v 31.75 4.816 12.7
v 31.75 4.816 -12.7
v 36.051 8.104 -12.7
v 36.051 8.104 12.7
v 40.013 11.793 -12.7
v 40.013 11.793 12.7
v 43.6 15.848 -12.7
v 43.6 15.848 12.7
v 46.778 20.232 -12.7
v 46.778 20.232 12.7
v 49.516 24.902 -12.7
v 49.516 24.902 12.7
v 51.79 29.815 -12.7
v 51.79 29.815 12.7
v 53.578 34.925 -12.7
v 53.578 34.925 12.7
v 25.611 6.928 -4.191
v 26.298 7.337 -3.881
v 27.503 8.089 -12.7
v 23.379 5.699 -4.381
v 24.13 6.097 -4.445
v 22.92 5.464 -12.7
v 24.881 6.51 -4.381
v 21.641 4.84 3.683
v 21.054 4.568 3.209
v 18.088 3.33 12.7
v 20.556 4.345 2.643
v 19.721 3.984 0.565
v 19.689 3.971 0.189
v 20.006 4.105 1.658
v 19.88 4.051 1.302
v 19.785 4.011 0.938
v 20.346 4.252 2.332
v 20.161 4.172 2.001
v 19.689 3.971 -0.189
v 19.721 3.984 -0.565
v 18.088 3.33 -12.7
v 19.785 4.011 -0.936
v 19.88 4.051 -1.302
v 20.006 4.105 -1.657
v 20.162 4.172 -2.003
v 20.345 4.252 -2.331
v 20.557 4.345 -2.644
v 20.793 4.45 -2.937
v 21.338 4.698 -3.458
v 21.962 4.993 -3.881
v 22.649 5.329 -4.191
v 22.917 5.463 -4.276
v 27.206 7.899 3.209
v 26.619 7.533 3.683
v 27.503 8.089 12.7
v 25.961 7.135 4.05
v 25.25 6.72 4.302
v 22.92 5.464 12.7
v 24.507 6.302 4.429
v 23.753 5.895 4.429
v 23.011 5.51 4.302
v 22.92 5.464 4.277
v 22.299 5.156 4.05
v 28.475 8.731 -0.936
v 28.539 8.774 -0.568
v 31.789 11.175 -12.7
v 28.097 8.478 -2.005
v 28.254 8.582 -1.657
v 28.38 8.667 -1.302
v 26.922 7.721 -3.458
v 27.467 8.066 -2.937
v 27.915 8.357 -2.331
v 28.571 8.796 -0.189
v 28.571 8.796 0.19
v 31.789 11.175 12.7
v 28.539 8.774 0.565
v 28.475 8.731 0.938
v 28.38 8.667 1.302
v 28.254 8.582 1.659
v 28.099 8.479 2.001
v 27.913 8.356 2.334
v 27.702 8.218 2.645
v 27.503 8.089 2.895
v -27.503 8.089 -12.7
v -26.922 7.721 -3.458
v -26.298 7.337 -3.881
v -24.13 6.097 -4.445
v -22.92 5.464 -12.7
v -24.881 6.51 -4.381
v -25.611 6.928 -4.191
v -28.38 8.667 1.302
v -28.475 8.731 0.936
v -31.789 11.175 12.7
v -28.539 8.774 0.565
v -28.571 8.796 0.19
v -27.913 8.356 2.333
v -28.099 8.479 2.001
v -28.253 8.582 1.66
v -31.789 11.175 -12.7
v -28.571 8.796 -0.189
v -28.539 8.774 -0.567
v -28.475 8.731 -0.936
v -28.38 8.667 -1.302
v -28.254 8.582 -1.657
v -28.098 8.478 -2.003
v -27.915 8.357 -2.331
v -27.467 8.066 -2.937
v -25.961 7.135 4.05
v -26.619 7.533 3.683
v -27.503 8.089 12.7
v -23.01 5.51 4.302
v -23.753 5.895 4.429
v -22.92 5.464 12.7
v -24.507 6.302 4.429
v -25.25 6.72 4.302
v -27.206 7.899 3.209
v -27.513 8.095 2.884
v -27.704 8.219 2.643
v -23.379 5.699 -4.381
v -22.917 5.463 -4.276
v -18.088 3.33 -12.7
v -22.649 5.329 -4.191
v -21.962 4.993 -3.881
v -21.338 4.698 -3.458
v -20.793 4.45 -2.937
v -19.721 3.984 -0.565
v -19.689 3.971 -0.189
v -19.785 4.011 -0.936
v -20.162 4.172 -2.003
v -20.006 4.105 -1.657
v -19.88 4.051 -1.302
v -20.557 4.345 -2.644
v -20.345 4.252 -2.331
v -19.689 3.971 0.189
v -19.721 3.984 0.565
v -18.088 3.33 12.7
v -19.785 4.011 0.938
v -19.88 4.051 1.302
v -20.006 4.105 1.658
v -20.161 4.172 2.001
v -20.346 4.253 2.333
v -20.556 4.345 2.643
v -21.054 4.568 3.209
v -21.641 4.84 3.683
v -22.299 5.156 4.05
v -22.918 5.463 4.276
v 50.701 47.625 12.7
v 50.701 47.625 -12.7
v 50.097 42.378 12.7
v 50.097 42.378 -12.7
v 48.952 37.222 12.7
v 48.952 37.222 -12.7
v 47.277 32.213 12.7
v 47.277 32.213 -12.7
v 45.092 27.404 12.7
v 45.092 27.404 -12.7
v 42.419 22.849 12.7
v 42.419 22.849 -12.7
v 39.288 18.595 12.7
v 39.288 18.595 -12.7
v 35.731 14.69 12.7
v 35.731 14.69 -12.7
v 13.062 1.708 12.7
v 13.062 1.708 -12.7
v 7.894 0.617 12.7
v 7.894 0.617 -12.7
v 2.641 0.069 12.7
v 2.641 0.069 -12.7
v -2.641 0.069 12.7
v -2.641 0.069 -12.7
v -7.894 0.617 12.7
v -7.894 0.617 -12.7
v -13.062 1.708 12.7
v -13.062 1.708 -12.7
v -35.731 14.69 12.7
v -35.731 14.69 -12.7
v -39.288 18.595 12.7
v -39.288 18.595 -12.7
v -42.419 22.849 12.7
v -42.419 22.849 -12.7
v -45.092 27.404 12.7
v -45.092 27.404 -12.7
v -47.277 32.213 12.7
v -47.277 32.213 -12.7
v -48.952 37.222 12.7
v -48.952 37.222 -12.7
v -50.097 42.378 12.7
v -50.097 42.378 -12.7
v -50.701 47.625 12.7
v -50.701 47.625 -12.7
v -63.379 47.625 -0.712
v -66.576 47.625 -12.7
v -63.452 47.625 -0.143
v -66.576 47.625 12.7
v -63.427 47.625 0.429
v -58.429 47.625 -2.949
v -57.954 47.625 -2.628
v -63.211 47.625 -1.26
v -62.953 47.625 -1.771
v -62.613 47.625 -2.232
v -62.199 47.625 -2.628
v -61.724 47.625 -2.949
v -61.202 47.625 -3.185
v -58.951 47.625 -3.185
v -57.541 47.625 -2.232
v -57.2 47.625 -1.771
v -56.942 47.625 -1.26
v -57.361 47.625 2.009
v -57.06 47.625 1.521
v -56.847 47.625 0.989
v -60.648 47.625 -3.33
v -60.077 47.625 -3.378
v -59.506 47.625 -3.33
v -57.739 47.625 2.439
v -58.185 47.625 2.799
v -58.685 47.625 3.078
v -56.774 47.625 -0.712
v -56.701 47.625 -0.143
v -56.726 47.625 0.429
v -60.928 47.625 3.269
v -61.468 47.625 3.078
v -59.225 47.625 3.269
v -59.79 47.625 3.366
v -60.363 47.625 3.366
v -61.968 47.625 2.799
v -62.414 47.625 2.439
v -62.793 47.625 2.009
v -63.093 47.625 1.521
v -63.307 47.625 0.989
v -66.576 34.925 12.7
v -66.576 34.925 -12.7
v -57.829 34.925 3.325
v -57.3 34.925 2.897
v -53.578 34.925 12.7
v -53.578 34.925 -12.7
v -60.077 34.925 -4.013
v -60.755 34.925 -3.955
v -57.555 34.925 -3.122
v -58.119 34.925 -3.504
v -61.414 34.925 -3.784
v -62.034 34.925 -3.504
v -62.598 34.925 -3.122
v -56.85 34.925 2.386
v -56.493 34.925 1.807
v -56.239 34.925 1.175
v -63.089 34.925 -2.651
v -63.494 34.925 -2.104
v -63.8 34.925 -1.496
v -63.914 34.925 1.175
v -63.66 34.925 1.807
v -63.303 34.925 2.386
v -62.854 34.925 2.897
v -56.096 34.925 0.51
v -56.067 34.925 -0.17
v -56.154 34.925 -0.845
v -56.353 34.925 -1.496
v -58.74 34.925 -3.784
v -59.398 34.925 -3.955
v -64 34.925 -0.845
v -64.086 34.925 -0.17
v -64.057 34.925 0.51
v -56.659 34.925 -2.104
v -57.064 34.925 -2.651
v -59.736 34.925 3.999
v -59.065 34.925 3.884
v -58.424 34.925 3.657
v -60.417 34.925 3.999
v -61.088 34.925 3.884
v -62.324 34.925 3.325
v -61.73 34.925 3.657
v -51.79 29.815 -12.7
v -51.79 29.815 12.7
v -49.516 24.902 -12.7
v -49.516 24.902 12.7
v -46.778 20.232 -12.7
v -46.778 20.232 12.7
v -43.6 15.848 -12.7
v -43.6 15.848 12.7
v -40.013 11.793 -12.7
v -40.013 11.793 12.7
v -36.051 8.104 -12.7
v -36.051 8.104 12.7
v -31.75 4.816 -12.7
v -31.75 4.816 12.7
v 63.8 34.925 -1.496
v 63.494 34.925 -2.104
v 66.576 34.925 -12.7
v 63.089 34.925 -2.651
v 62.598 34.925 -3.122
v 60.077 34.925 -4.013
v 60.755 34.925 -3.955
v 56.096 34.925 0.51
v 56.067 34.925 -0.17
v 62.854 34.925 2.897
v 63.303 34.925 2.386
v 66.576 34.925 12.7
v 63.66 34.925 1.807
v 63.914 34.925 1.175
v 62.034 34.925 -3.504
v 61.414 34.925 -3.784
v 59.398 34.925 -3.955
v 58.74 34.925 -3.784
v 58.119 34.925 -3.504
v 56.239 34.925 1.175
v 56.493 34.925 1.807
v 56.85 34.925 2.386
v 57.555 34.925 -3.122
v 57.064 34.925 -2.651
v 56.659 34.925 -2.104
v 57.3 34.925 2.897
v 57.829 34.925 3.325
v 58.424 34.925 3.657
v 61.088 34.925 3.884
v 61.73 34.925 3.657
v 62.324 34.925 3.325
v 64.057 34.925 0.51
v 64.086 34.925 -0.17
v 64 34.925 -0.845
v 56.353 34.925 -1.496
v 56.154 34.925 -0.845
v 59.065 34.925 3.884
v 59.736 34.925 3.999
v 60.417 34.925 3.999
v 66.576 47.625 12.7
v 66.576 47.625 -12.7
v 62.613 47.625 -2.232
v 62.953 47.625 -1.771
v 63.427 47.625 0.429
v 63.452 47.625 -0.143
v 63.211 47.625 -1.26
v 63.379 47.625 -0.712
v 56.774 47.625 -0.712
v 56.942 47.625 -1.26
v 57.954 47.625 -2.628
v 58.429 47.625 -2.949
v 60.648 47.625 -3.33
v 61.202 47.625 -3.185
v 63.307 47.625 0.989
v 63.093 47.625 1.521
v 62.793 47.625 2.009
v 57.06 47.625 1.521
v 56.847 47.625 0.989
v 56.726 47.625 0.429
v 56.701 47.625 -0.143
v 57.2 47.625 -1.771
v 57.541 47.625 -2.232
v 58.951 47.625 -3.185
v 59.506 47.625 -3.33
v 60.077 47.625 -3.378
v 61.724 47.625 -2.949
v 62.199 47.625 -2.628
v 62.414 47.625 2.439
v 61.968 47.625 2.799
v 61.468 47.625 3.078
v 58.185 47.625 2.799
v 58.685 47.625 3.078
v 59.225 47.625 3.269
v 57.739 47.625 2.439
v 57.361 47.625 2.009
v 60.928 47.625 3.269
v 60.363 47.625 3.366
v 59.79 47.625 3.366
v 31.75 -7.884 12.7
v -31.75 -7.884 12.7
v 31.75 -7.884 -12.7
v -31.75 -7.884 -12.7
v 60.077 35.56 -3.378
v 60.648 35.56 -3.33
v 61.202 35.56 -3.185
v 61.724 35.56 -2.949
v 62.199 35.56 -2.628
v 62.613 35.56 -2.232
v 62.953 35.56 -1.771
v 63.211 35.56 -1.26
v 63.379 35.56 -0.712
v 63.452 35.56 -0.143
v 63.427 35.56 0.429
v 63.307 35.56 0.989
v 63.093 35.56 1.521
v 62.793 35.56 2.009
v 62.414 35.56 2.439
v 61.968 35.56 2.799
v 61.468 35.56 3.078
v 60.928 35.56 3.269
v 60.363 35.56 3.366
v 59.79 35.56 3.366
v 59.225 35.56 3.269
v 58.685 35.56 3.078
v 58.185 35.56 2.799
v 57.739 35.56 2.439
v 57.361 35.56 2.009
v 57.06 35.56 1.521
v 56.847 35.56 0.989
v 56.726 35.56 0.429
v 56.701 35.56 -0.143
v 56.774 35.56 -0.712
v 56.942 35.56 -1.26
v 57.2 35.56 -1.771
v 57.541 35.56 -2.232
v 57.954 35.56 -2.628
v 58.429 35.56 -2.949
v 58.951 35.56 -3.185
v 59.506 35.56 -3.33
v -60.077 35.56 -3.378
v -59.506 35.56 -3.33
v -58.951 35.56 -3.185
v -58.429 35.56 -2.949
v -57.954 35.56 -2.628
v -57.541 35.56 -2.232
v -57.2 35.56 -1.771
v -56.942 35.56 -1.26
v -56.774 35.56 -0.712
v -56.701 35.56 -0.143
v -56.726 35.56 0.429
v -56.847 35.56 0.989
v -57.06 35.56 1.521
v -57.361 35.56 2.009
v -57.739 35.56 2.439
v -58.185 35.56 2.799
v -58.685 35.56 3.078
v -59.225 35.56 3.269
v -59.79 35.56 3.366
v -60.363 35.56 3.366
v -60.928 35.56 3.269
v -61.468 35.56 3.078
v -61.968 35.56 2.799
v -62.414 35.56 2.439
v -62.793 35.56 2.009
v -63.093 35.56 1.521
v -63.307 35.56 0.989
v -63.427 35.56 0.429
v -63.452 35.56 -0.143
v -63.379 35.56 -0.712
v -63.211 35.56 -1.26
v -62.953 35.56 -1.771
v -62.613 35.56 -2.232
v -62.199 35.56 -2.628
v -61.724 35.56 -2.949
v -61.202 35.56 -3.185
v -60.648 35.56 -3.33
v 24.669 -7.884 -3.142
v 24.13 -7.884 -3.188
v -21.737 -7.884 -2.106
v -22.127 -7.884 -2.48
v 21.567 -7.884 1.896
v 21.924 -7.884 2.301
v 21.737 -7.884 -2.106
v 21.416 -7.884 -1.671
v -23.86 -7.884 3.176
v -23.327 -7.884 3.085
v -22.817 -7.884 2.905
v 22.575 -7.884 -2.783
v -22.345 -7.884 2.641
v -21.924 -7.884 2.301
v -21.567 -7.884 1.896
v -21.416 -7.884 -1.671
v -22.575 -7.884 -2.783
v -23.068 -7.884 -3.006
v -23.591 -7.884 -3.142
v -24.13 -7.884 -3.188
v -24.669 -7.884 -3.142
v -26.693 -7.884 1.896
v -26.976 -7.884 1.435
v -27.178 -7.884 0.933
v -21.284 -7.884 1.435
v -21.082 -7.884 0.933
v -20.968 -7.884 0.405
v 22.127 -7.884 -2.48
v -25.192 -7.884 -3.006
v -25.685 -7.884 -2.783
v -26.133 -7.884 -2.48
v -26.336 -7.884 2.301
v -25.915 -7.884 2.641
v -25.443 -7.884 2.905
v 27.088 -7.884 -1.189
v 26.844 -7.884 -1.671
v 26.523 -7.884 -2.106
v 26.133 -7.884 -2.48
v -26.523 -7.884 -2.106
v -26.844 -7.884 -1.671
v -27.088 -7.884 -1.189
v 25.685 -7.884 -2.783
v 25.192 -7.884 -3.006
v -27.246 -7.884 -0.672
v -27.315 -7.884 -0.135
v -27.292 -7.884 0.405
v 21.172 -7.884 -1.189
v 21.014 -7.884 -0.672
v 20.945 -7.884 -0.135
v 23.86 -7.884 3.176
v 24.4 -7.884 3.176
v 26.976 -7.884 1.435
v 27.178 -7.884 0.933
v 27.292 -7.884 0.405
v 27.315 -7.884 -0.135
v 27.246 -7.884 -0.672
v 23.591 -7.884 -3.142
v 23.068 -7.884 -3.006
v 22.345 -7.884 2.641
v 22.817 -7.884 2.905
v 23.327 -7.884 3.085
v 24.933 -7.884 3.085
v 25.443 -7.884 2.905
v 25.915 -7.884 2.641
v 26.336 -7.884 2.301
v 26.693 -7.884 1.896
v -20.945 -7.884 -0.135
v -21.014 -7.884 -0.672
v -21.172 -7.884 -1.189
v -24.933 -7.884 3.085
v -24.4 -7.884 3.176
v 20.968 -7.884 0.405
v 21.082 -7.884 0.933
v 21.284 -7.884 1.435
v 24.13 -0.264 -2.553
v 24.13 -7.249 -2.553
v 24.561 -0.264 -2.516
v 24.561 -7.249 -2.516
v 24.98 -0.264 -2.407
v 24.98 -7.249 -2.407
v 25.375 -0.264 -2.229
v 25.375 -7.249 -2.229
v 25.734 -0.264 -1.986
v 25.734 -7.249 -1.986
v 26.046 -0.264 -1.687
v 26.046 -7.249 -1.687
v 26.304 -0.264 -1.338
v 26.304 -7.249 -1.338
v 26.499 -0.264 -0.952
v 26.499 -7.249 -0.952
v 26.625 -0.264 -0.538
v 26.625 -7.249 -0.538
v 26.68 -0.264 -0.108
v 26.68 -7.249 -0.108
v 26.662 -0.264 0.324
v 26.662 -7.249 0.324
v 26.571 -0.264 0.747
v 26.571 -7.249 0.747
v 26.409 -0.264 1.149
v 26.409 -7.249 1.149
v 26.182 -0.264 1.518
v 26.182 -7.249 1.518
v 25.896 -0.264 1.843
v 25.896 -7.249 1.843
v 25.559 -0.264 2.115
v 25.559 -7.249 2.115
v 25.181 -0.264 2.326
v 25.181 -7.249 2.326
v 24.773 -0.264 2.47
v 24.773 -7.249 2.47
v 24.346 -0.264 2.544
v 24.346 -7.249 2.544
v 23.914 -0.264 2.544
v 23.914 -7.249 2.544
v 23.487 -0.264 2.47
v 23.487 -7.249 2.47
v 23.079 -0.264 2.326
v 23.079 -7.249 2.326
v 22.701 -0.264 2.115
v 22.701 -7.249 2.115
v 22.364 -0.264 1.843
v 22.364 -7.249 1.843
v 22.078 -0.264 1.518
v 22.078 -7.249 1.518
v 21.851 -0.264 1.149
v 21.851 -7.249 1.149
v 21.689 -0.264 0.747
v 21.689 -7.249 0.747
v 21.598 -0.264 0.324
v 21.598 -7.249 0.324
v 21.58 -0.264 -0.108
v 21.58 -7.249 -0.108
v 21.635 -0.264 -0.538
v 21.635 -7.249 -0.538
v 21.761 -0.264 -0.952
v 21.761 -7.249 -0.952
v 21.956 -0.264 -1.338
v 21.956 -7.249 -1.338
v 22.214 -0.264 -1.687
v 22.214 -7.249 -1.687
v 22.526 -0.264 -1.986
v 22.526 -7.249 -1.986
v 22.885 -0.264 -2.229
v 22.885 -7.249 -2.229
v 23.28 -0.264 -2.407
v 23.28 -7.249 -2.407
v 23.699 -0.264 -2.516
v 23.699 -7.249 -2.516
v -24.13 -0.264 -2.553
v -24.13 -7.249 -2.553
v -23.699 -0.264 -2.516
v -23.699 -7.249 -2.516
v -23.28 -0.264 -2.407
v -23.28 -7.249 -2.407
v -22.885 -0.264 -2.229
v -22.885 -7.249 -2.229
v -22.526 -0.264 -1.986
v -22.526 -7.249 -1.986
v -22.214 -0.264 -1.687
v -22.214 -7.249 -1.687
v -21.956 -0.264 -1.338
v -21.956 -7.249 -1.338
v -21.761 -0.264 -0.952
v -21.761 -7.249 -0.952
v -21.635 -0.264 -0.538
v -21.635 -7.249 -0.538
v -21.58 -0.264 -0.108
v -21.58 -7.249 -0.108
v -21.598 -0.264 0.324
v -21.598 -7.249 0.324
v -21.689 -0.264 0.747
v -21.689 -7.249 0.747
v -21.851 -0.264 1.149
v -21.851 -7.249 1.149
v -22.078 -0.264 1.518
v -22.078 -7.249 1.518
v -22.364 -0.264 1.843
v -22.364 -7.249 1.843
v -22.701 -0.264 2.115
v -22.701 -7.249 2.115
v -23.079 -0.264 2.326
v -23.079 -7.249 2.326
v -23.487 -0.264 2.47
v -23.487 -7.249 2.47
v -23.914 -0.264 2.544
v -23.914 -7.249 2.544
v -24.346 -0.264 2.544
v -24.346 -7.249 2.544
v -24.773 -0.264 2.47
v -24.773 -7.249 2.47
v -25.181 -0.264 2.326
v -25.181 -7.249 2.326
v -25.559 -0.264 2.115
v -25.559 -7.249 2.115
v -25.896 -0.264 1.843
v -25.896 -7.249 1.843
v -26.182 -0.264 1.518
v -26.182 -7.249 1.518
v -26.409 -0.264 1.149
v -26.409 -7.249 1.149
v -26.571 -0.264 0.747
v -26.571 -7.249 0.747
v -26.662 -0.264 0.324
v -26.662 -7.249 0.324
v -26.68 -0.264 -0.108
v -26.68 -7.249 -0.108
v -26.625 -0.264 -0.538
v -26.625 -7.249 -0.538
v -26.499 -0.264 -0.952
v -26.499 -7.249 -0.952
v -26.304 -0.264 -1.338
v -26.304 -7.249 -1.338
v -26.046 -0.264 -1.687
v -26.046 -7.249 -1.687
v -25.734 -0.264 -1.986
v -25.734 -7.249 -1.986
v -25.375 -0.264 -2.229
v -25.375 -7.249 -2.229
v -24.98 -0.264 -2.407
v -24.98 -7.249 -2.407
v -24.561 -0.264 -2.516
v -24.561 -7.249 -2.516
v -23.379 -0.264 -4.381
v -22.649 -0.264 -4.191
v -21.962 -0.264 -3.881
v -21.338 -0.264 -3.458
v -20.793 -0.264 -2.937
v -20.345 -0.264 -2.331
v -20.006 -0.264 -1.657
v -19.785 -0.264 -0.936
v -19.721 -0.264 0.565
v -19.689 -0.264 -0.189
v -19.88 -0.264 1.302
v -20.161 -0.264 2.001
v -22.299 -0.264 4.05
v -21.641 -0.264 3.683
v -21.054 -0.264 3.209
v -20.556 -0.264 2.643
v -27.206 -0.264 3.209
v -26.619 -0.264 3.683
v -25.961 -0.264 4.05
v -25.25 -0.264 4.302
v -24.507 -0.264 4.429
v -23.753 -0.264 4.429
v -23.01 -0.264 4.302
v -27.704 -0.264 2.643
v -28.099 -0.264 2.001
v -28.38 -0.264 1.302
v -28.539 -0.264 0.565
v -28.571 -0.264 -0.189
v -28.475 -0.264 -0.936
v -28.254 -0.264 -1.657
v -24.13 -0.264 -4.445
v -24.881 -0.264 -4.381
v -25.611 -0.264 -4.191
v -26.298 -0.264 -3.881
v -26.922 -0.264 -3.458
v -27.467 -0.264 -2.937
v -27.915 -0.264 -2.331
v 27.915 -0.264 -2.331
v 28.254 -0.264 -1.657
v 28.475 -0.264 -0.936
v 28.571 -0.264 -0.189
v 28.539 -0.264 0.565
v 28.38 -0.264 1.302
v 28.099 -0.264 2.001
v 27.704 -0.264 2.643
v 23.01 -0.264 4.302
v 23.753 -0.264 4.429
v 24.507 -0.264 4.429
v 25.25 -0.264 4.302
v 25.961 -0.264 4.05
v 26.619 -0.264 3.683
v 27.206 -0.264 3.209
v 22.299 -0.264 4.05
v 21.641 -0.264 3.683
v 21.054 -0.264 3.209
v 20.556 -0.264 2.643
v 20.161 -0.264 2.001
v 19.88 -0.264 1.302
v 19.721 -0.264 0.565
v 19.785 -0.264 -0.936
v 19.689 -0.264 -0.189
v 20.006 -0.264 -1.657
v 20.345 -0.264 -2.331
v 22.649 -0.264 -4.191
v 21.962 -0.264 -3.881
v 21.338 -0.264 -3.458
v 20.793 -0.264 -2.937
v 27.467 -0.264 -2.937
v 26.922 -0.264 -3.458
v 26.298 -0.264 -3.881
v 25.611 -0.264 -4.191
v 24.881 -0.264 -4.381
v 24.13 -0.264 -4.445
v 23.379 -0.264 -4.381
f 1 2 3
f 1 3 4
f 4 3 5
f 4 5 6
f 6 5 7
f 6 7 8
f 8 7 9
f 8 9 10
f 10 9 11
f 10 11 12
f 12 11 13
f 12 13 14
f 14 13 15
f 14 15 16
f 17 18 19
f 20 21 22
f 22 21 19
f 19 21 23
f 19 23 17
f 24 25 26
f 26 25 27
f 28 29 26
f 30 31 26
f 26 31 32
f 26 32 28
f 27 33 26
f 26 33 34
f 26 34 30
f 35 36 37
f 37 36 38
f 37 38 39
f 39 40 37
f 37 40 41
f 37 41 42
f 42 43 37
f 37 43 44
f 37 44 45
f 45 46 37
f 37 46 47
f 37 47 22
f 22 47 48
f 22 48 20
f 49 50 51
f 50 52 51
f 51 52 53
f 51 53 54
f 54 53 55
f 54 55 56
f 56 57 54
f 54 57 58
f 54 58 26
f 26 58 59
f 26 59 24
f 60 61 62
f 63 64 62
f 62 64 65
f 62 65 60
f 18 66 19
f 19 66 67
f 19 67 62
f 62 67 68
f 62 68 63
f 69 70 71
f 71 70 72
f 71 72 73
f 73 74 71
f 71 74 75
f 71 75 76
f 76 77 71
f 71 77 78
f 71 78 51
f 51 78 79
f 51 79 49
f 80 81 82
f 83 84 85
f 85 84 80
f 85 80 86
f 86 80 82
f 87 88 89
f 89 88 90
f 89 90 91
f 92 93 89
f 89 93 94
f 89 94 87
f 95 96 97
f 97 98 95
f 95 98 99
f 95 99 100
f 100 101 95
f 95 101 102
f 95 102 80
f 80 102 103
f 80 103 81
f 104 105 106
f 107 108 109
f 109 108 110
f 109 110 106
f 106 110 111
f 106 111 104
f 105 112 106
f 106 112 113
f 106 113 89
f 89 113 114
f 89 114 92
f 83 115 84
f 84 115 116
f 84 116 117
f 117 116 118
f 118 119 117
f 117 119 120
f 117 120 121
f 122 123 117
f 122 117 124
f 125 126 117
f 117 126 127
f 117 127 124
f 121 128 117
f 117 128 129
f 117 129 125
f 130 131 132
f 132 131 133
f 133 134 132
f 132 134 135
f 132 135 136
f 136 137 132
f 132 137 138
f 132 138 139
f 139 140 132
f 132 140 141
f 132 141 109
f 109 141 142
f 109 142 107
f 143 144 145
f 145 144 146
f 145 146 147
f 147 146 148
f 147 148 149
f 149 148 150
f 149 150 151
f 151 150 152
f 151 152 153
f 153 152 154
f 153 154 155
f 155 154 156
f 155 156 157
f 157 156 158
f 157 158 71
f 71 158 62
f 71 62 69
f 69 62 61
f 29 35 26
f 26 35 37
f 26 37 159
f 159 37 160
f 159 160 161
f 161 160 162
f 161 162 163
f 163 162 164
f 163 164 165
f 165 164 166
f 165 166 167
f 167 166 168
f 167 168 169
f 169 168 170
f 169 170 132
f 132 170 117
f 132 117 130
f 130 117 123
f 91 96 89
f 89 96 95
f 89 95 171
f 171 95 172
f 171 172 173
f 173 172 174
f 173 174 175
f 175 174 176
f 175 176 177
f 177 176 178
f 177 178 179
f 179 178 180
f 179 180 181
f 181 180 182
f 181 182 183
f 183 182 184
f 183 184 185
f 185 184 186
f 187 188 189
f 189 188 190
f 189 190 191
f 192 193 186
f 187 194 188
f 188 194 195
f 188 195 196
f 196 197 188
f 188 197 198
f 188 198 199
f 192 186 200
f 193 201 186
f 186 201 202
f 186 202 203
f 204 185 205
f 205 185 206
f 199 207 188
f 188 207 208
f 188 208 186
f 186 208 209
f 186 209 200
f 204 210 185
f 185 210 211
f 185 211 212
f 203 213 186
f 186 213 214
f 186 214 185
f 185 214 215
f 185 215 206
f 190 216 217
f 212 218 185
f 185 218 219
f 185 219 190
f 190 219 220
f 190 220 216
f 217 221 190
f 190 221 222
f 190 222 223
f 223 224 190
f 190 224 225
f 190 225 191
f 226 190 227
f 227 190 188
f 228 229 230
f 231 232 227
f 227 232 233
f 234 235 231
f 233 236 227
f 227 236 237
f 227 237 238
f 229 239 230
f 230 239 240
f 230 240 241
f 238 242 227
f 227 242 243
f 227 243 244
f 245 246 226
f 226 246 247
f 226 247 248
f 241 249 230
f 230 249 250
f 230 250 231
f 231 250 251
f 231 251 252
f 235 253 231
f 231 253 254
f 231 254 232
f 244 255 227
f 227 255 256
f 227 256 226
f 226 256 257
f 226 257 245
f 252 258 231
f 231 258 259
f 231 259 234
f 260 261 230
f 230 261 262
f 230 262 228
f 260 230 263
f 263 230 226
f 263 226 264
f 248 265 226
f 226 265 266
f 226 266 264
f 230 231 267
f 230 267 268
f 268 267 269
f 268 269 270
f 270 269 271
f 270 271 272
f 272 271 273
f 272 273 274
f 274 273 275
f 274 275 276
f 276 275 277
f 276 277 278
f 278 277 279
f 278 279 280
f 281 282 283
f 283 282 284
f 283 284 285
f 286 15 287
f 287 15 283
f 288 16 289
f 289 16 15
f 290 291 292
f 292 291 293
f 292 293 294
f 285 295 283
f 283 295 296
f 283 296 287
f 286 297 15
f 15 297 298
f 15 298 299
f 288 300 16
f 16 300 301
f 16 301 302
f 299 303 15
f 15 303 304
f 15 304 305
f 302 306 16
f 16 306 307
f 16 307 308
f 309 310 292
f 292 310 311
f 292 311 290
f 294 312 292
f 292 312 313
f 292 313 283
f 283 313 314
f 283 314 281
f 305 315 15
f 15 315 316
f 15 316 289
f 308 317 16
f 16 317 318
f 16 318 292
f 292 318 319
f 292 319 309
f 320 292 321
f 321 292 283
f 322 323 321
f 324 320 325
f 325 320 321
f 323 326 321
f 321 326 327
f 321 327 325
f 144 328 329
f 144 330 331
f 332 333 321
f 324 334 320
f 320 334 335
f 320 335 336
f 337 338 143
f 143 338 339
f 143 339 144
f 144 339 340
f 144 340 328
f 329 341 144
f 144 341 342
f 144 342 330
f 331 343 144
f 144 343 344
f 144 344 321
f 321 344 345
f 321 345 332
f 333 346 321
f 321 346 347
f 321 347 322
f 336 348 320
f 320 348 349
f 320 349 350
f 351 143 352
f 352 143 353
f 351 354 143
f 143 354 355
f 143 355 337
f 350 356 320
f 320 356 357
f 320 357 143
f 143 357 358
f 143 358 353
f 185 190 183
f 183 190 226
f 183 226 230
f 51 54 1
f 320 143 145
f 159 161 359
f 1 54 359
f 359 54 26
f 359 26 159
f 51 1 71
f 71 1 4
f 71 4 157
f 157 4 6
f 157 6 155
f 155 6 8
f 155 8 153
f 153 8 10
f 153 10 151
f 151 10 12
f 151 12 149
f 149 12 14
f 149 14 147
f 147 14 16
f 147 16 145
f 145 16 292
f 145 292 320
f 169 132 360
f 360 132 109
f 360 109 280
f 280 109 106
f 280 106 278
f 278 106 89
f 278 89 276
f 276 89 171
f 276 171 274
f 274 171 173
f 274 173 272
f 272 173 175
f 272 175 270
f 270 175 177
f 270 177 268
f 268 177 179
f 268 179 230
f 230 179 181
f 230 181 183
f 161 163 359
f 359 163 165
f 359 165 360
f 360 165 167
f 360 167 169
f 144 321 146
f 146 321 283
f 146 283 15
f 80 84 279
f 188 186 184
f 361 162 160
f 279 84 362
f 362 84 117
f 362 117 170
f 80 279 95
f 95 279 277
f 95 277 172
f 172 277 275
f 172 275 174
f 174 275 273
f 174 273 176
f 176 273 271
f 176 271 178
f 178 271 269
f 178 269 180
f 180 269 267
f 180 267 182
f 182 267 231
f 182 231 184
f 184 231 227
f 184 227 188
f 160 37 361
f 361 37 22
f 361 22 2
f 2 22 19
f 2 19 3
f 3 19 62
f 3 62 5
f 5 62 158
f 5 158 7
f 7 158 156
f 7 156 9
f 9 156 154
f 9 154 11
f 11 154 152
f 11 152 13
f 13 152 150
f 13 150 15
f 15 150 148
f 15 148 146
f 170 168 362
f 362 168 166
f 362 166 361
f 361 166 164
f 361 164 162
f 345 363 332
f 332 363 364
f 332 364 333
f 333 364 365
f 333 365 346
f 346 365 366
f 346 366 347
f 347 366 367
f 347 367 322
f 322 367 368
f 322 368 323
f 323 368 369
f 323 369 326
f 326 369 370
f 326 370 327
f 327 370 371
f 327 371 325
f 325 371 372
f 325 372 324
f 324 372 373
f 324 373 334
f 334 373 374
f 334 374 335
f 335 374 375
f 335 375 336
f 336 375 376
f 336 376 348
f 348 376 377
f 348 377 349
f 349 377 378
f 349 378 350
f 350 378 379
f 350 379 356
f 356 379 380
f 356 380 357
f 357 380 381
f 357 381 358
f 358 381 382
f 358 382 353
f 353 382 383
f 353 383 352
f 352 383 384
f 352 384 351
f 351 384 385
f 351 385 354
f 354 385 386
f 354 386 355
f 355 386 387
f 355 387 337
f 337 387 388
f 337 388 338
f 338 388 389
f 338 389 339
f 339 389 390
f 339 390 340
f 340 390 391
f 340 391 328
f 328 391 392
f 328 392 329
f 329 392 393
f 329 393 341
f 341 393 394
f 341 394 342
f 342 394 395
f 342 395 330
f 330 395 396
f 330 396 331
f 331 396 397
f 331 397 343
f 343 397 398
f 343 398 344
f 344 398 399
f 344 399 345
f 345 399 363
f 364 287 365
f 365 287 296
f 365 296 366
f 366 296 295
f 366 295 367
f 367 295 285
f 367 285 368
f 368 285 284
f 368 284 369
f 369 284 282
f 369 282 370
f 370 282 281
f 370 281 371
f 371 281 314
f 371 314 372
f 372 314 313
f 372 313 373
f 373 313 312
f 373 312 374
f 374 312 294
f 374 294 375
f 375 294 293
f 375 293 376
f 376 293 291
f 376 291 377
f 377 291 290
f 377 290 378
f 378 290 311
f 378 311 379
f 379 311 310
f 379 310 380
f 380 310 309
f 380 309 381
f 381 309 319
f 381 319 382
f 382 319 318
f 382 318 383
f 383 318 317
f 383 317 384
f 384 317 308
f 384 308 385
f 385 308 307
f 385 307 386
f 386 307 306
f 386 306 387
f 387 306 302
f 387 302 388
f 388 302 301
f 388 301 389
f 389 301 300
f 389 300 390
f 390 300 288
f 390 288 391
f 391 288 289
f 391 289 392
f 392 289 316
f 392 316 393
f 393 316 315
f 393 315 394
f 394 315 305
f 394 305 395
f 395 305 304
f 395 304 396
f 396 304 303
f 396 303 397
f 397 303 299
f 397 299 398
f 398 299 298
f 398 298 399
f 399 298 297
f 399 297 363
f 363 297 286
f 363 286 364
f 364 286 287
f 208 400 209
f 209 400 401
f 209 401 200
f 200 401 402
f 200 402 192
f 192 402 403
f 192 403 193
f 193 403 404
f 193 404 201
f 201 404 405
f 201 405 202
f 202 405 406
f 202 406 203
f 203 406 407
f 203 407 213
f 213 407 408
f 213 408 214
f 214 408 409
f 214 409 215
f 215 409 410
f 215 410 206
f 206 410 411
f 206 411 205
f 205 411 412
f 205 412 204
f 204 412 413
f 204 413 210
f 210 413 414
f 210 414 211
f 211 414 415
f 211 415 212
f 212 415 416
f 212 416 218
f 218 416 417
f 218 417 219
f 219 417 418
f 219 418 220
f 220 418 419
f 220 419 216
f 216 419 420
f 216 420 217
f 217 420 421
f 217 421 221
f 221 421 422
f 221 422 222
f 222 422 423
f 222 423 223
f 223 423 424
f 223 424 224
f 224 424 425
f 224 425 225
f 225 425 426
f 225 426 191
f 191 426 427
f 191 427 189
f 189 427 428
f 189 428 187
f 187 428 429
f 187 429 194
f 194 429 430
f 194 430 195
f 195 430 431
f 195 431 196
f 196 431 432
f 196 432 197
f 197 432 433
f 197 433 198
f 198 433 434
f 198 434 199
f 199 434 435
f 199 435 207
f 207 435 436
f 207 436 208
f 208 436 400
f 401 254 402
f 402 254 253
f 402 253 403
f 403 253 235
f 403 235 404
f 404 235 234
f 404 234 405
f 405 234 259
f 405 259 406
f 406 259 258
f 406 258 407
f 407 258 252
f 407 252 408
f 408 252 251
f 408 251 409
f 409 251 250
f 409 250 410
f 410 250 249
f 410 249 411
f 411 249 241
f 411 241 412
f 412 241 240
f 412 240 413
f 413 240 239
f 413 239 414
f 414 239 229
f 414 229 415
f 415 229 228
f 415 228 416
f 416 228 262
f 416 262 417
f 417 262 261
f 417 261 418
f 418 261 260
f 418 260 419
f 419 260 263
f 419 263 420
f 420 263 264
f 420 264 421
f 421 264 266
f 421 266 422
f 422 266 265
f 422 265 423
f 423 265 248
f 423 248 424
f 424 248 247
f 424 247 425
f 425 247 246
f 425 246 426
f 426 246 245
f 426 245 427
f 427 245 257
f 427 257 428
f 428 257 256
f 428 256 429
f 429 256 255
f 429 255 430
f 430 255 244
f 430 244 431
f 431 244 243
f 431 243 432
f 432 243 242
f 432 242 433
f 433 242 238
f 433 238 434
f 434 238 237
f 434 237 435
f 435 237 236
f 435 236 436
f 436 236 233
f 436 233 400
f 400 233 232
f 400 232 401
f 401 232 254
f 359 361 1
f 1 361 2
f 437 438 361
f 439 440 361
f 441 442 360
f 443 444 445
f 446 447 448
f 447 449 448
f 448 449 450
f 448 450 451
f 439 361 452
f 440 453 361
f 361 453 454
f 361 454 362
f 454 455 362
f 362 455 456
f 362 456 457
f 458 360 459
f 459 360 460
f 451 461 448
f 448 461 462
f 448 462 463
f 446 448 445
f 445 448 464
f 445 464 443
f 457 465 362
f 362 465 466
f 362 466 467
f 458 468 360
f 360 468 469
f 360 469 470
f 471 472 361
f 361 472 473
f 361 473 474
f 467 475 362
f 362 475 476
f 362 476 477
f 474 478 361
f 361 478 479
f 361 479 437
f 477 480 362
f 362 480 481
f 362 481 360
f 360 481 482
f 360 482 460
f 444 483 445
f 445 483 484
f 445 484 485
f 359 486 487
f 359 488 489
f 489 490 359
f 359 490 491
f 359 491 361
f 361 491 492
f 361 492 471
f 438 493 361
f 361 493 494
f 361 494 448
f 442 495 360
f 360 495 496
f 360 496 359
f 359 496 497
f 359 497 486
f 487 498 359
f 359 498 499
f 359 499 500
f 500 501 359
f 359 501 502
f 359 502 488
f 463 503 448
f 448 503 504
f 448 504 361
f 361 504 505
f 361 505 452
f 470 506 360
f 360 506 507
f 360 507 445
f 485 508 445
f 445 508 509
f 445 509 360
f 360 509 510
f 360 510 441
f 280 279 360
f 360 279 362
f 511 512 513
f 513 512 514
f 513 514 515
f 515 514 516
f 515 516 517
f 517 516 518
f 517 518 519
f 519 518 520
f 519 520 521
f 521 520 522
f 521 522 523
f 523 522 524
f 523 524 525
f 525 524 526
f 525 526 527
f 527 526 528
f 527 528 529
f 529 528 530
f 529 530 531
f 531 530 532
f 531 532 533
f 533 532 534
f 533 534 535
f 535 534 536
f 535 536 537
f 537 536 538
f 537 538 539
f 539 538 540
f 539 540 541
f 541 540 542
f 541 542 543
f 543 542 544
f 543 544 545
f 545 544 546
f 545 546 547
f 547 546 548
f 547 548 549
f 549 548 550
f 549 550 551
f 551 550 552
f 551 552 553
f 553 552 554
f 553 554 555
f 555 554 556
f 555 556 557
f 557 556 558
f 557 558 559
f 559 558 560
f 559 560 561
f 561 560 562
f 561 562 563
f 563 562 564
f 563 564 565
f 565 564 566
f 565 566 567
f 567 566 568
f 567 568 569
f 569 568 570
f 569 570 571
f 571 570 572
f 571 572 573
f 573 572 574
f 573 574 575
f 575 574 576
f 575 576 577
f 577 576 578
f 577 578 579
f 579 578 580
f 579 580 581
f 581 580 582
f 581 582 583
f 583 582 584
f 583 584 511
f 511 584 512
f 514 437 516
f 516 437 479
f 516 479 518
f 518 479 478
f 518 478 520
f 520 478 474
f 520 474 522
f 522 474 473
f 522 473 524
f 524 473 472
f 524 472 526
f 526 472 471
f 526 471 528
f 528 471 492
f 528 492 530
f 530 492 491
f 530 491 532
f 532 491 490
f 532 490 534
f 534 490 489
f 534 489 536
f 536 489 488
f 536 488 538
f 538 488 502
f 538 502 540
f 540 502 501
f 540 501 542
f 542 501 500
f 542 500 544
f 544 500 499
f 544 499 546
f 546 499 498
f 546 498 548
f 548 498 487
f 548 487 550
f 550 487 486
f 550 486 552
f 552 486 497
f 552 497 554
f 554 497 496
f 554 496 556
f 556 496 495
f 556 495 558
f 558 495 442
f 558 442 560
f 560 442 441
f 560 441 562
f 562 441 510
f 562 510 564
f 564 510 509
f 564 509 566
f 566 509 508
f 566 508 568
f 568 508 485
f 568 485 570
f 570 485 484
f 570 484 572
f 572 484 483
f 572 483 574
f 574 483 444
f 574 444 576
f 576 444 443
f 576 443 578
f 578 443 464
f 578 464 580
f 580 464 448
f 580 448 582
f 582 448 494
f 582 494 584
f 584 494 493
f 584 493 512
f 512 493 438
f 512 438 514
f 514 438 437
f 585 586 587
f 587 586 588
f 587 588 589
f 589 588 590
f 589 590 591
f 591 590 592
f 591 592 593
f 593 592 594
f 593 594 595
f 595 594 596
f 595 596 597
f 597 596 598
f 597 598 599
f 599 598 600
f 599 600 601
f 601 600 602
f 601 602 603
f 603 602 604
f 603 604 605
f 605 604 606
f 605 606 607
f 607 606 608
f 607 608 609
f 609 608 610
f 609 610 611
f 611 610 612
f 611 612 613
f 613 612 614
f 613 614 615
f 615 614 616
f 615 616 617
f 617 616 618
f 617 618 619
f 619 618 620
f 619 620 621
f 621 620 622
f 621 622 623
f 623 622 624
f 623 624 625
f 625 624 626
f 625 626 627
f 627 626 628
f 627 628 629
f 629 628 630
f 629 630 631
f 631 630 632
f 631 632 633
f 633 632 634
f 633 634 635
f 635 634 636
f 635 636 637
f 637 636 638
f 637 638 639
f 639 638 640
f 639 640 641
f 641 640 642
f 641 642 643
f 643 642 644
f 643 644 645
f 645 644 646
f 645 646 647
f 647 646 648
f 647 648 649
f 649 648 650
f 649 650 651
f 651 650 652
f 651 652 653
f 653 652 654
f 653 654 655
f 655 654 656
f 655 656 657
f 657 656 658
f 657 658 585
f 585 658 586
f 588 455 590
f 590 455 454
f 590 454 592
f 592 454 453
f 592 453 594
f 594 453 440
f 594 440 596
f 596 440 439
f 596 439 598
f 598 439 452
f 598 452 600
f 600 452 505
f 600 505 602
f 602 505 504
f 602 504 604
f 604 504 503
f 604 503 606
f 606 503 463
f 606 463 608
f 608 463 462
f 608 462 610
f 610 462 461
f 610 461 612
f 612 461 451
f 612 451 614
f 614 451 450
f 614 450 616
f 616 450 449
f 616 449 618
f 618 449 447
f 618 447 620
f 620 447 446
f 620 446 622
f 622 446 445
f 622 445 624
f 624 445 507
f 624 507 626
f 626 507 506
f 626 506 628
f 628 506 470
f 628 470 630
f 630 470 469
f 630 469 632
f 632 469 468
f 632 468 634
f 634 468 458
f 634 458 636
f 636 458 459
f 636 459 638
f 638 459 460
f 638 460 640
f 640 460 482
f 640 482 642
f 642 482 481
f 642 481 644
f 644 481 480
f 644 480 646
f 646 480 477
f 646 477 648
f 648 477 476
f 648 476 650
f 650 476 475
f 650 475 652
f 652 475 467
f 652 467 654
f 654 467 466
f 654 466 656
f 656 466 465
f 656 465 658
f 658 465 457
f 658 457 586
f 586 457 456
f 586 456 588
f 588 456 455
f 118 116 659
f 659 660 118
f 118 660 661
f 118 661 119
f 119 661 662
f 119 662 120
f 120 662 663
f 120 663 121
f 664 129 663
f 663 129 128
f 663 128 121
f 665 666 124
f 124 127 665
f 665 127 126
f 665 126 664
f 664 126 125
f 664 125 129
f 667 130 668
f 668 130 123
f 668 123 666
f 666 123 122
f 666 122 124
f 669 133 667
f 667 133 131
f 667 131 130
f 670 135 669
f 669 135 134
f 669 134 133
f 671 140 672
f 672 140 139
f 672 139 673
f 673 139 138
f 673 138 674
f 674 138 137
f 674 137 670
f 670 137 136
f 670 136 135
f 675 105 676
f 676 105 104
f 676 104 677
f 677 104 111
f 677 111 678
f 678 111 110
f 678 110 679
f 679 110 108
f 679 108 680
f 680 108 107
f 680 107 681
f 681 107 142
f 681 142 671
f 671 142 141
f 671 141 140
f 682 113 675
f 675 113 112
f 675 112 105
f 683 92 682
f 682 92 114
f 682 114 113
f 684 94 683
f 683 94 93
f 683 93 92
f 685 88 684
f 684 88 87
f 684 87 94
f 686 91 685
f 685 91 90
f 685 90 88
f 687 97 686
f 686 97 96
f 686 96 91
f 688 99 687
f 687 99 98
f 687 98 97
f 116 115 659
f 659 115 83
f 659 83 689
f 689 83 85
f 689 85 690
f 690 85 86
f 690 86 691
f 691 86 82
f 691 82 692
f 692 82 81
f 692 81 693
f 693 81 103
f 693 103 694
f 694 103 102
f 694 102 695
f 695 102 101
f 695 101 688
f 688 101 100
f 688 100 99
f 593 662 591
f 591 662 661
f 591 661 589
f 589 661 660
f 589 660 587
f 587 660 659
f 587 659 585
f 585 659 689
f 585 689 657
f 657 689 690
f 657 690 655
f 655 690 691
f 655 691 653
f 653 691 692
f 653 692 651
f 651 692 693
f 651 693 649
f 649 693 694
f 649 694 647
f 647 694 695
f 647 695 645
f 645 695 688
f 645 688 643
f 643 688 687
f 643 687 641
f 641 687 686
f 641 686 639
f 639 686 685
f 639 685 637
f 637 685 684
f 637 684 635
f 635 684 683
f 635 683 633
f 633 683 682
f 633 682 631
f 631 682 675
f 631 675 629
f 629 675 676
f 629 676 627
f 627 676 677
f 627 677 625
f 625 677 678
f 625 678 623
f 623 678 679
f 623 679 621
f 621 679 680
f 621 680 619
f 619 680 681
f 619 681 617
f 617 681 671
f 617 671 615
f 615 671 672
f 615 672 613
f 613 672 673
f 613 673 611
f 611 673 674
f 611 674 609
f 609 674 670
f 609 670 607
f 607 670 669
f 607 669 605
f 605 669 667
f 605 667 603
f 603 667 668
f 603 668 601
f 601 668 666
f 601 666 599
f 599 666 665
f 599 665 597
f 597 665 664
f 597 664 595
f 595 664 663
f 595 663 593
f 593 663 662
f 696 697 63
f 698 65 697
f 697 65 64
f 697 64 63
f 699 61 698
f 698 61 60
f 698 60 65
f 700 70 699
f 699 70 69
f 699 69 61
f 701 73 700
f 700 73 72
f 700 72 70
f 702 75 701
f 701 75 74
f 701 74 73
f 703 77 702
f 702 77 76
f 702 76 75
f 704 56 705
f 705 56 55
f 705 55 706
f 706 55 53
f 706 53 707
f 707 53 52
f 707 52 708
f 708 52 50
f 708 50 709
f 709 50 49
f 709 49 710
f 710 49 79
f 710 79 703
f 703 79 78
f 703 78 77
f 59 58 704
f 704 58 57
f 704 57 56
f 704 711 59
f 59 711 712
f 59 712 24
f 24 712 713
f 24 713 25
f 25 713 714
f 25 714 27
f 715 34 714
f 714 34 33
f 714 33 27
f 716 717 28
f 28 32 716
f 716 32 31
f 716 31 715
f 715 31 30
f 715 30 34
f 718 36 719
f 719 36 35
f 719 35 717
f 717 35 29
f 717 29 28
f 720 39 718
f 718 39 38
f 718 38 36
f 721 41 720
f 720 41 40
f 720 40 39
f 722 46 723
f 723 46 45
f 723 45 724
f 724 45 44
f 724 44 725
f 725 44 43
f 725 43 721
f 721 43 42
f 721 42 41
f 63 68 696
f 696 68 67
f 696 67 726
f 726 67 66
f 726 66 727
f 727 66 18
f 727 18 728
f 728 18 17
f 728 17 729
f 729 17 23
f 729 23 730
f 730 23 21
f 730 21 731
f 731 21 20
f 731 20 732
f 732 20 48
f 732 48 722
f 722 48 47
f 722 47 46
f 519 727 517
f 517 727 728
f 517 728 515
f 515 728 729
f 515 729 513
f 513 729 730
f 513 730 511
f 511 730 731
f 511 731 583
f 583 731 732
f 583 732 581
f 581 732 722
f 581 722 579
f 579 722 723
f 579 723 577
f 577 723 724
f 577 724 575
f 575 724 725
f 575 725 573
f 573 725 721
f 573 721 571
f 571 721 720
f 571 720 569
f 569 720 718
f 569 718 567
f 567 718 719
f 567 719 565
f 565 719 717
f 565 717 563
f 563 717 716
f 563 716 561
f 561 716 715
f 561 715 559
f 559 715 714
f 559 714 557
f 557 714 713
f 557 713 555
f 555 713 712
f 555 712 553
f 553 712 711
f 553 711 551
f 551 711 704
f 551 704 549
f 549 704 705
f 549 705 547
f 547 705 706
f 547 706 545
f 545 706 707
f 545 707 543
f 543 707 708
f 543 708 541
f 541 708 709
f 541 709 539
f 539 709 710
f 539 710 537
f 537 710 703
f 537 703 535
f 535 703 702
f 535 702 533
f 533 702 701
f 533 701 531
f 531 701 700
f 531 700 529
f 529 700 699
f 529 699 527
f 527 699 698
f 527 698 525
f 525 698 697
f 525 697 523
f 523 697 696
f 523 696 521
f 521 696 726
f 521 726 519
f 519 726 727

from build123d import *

# Parameters (mm, degrees)
BOSS_EXTRUDE1_DEPTH               = 12.7
F_1_4_CLEARANCE_HOLE1_D           = 6.7564
F_1_4_CLEARANCE_HOLE1_CSINK_D     = 8.0264
F_1_4_CLEARANCE_HOLE1_CSINK_ANGLE = 90
BOSS_EXTRUDE2_START               = -25.4
BOSS_EXTRUDE2_DEPTH               = 25.4
F_10_CLEARANCE_HOLE1_D            = 5.1054
F_10_CLEARANCE_HOLE1_CSINK_D      = 6.3754
F_10_CLEARANCE_HOLE1_CSINK_ANGLE  = 90
CUT_EXTRUDE1_START                = -7.62
SKETCH13_R                        = 4.445
CUT_EXTRUDE1_DEPTH                = 25.4


with BuildPart() as part:
    # Sketch1 → Boss-Extrude1 (new, symmetric)
    with BuildSketch(Plane.XY):
        with BuildLine():
            Line((-50.700684167, 47.625), (-66.575684167, 47.625))
            Line((-66.575684167, 47.625), (-66.575684167, 34.925))
            Line((-66.575684167, 34.925), (-53.577595831, 34.925))
            ThreePointArc((-53.577595831, 34.925), (0, -5.08), (53.577595831, 34.925))
            Line((53.577595831, 34.925), (66.575684167, 34.925))
            Line((66.575684167, 34.925), (66.575684167, 47.625))
            Line((66.575684167, 47.625), (50.700684167, 47.625))
            ThreePointArc((50.700684167, 47.625), (0, 0), (-50.700684167, 47.625))
        make_face()
    extrude(amount=BOSS_EXTRUDE1_DEPTH, both=True)

    # 1/4 Clearance Hole1 (through all)
    with Locations(Plane(origin=(0, 34.925, 0), x_dir=(-1, 0, 0), z_dir=(0, -1, 0))):
        with Locations((60.076639999, 0), (-60.076639999, 0)):
            CounterSinkHole(F_1_4_CLEARANCE_HOLE1_D / 2, F_1_4_CLEARANCE_HOLE1_CSINK_D / 2, counter_sink_angle=F_1_4_CLEARANCE_HOLE1_CSINK_ANGLE)

    # Sketch5 → Boss-Extrude2 (add)
    with BuildSketch(Plane(origin=(0, 0, -12.7), x_dir=(-1, 0, 0), z_dir=(0, 0, -1)).offset(BOSS_EXTRUDE2_START)):
        with BuildLine():
            Line((-31.75, -7.883822155), (31.75, -7.883822155))
            Line((31.75, -7.883822155), (31.75, 4.816177845))
            ThreePointArc((31.75, 4.816177845), (0, -5.08), (-31.75, 4.816177845))
            Line((-31.75, 4.816177845), (-31.75, -7.883822155))
        make_face()
    extrude(amount=BOSS_EXTRUDE2_DEPTH)

    # #10 Clearance Hole1 (through all)
    with Locations(Plane(origin=(0, -7.883822155, 0), x_dir=(-1, 0, 0), z_dir=(0, -1, 0))):
        with Locations((24.13, 0), (-24.13, 0)):
            CounterSinkHole(F_10_CLEARANCE_HOLE1_D / 2, F_10_CLEARANCE_HOLE1_CSINK_D / 2, counter_sink_angle=F_10_CLEARANCE_HOLE1_CSINK_ANGLE)

    # Sketch13 → Cut-Extrude1 (cut)
    with BuildSketch(Plane.XZ.offset(7.883822155).offset(CUT_EXTRUDE1_START)):
        with Locations(Location((-24.13, 0, 0), (0, 0, 270))):
            Circle(SKETCH13_R)
        with Locations(Location((24.13, 0, 0), (0, 0, 270))):
            Circle(SKETCH13_R)
    extrude(amount=-CUT_EXTRUDE1_DEPTH, mode=Mode.SUBTRACT)


solid = part.part
